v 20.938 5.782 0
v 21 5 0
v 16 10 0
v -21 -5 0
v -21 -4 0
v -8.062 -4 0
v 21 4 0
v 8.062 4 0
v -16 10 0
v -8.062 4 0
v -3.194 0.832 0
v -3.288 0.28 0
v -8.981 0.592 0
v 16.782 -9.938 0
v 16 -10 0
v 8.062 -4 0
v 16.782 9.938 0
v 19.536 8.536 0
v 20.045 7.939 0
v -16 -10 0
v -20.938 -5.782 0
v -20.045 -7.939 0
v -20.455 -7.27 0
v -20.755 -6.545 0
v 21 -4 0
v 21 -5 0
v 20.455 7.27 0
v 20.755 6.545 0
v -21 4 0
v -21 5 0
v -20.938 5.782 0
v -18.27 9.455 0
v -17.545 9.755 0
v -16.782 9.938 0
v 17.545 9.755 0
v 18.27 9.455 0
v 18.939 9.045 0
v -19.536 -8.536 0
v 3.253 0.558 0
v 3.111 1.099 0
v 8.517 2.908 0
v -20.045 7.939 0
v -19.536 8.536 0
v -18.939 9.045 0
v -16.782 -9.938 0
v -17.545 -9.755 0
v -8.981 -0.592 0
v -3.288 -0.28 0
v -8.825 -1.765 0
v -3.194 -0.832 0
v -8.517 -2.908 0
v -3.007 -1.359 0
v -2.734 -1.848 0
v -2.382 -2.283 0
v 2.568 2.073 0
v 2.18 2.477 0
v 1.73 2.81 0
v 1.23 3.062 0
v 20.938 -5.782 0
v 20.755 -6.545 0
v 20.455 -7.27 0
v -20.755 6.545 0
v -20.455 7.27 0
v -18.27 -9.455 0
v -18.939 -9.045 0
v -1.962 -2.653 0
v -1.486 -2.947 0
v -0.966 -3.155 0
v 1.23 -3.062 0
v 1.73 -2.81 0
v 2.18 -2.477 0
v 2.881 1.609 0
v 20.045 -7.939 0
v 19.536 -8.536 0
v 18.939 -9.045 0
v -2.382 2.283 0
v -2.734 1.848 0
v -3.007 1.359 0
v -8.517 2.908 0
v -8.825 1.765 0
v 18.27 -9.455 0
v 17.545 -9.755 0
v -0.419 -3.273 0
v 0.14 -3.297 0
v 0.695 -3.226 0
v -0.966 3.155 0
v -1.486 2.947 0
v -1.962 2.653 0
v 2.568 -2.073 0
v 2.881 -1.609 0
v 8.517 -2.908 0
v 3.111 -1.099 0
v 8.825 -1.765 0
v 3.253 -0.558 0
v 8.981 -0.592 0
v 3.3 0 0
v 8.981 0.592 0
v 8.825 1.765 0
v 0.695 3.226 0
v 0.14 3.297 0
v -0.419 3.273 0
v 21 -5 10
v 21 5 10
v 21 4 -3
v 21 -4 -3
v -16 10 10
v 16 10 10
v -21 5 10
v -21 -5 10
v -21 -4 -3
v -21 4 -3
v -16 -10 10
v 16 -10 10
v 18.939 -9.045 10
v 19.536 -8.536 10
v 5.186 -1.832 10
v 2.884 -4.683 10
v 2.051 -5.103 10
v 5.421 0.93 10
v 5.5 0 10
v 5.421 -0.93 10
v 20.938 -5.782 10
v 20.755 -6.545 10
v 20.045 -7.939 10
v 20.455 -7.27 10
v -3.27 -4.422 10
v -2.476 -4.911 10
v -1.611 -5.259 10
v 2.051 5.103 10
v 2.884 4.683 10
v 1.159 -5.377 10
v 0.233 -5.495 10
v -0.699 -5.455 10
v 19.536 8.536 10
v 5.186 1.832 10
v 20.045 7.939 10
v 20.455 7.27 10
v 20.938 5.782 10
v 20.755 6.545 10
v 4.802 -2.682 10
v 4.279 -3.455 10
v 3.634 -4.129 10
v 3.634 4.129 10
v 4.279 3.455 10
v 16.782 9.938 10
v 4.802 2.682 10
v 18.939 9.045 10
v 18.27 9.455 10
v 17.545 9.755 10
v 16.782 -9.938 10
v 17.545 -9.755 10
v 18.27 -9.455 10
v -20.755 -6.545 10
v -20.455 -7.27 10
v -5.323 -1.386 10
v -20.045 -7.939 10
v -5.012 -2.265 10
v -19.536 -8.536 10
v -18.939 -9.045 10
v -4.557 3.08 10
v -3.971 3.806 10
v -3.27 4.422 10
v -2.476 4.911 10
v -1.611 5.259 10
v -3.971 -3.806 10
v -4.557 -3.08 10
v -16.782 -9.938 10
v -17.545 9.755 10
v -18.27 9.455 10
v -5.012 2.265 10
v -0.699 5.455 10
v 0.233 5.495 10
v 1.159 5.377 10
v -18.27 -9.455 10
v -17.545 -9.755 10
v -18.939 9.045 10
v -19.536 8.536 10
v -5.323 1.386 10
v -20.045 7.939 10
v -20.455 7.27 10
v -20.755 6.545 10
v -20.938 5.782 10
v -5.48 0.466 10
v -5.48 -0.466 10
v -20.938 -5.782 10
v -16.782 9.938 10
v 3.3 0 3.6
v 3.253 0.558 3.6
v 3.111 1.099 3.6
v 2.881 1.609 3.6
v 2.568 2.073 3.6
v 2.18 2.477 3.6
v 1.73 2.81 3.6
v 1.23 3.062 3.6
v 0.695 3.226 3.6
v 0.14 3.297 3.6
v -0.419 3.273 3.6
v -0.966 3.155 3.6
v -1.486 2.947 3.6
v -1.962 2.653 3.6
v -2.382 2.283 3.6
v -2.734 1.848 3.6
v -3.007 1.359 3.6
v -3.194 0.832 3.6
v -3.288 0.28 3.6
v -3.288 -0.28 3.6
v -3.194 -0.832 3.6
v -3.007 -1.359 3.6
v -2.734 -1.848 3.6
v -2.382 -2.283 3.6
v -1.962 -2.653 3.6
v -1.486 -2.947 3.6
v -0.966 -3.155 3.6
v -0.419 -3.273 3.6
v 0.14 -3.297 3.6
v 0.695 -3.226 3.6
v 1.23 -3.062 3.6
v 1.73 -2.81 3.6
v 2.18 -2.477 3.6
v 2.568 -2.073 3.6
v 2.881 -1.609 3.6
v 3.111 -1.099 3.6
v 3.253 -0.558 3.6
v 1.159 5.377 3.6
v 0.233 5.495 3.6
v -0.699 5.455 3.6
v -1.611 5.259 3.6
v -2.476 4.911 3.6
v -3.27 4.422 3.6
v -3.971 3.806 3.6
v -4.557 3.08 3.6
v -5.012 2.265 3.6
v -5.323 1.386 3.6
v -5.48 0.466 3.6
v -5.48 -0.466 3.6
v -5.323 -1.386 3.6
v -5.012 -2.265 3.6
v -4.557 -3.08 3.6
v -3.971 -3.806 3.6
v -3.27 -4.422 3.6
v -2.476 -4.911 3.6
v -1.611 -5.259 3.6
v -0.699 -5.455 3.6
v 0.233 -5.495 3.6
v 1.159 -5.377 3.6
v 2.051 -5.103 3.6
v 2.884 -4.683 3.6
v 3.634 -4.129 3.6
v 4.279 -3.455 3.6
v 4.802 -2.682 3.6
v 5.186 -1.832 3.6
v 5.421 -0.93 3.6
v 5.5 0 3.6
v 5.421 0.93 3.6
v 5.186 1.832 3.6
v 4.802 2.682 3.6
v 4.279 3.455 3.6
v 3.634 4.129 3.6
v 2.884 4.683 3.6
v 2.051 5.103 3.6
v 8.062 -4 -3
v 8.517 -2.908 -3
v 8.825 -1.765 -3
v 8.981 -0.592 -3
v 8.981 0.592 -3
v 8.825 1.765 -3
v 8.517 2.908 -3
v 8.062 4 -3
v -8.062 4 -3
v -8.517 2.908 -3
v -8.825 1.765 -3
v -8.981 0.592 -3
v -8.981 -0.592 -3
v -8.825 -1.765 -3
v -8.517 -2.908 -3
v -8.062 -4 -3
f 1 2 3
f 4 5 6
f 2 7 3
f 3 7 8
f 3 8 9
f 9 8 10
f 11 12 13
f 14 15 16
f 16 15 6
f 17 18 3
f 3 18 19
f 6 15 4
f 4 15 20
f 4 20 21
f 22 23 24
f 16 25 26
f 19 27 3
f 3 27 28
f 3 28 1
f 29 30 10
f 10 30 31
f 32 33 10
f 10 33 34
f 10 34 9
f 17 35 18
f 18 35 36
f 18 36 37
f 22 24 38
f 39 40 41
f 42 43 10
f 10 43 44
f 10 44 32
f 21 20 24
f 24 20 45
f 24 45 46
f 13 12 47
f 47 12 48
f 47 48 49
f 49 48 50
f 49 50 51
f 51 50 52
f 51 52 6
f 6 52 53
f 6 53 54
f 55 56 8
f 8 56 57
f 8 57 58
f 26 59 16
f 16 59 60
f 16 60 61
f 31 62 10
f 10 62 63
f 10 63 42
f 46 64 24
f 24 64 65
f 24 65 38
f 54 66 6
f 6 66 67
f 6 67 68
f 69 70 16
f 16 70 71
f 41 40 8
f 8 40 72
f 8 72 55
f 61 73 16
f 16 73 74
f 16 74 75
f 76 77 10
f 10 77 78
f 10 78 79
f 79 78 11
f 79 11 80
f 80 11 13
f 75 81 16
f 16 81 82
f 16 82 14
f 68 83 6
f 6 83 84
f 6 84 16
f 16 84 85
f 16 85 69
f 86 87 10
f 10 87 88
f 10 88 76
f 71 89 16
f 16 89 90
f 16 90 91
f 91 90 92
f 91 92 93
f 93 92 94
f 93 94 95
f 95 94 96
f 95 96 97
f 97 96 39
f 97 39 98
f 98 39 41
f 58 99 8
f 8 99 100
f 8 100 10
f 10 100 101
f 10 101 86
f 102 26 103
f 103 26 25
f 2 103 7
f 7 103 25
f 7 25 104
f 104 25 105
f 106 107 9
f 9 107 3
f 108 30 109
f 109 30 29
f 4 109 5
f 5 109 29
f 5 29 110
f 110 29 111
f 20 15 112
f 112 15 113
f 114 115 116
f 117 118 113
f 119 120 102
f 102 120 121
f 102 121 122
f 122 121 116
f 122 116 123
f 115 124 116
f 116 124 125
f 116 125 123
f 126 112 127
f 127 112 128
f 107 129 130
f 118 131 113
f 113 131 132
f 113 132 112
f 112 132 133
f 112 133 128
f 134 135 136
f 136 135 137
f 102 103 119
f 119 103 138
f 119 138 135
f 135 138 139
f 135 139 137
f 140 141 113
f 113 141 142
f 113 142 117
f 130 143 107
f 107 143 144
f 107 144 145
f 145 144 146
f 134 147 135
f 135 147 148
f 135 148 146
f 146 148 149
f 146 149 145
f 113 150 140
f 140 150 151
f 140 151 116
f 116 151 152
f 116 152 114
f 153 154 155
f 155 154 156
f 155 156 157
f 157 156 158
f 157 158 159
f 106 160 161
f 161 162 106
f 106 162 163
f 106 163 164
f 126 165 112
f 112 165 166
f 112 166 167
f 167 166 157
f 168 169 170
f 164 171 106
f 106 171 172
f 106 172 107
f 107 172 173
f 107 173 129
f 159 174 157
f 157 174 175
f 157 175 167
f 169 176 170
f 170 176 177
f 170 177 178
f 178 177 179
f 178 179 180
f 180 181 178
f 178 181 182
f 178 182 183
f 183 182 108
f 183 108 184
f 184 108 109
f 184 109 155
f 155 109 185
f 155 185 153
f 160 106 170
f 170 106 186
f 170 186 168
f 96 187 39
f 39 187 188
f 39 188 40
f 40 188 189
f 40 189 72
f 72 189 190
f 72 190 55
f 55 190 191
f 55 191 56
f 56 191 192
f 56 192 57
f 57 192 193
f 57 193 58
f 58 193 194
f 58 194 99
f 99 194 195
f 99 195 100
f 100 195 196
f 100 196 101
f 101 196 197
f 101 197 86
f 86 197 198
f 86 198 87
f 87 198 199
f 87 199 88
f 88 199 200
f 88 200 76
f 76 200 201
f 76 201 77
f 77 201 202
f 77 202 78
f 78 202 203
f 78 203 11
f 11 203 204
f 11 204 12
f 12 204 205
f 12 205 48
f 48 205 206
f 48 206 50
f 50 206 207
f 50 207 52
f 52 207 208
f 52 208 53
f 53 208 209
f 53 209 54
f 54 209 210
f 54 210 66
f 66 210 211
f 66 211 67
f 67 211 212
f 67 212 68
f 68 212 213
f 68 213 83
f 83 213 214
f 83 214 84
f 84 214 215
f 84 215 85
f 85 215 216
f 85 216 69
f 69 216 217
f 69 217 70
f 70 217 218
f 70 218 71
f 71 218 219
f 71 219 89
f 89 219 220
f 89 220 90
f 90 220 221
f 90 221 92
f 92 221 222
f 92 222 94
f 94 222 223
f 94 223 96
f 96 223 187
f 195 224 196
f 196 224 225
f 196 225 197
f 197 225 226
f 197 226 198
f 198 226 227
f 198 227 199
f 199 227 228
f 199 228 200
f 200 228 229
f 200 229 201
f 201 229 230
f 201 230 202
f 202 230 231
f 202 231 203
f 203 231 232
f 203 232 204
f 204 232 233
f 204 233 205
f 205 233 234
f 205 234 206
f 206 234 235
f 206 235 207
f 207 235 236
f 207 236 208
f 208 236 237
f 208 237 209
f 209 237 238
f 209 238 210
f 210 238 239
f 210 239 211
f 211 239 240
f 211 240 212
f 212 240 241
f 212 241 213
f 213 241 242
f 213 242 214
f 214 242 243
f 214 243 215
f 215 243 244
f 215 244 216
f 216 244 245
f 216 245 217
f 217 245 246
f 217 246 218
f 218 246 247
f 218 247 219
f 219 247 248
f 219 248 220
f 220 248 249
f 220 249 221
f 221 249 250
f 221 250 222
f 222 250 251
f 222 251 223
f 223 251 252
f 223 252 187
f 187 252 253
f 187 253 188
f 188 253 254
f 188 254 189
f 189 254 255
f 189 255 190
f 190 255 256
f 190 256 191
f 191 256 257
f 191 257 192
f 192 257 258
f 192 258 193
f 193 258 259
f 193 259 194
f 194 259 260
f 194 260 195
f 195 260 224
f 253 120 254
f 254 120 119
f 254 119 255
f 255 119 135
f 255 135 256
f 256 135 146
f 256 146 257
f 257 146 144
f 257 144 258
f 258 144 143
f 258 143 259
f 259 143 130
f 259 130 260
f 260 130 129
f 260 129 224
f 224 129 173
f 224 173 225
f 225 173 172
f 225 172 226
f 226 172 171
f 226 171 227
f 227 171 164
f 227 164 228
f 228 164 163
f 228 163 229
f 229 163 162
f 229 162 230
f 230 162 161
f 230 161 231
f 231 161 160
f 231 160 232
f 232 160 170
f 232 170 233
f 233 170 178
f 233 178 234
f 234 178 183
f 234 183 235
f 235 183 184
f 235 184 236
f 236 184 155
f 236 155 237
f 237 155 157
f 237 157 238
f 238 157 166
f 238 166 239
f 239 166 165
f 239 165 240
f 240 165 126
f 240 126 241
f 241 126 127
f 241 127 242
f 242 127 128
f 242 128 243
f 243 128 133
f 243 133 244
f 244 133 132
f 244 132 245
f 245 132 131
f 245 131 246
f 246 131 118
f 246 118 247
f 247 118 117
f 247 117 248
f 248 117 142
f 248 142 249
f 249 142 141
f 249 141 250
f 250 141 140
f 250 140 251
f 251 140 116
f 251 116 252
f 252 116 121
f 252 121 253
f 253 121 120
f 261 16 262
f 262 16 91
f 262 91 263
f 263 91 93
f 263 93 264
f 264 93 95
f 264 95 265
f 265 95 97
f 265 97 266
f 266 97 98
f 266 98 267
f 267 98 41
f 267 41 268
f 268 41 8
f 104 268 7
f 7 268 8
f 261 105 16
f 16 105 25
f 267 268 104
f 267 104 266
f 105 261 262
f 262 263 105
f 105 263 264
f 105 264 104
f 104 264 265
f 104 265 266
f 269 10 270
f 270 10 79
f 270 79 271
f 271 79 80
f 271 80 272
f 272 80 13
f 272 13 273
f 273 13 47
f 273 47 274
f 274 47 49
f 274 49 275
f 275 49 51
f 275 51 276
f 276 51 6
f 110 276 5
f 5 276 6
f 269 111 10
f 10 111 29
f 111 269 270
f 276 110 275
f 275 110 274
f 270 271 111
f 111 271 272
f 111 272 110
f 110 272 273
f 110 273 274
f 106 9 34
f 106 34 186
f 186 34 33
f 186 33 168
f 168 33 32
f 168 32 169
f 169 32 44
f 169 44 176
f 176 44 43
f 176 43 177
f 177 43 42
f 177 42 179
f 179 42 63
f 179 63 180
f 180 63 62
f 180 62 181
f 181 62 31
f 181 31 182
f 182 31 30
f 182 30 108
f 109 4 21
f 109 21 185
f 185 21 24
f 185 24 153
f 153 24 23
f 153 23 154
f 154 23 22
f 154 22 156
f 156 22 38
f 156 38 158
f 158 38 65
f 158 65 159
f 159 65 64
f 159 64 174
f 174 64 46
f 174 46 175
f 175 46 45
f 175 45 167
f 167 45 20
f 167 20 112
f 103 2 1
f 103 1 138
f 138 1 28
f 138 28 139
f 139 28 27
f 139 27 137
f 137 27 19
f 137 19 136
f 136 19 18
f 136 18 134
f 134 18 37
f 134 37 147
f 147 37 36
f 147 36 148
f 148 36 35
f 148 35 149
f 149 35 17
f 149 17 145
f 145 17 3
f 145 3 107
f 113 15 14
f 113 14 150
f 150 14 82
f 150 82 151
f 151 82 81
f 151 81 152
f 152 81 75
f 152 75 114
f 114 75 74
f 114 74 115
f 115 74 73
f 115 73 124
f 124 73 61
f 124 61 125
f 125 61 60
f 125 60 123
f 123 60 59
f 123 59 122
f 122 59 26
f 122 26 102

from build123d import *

# Parameters (mm, degrees)
BASE_SKETCH_W           = 42
BASE_SKETCH_H           = 20
BASE_DEPTH              = 10
MOUNT_SCREW_D           = 6.6
MOUNT_SCREW_CBORE_D     = 11
MOUNT_SCREW_CBORE_DEPTH = 6.4
PROFILE_CLIP_DEPTH      = 3
ZAOBLIT1_R              = 5


with BuildPart() as part:
    # Base sketch → Base (new body)
    with BuildSketch(Plane.XY):
        Rectangle(BASE_SKETCH_W, BASE_SKETCH_H)
    extrude(amount=BASE_DEPTH)

    # Mount screw (through all)
    with Locations(Plane.XY.offset(10)):
        with Locations((0, 0)):
            CounterBoreHole(MOUNT_SCREW_D / 2, MOUNT_SCREW_CBORE_D / 2, MOUNT_SCREW_CBORE_DEPTH)

    # Profile clip sketch → Profile clip (add)
    with BuildSketch(Plane(origin=(0, 0, 0), x_dir=(-1, 0, 0), z_dir=(0, 0, -1))):
        with BuildLine():
            Line((-8.062257748, 4), (-21, 4))
            Line((-21, 4), (-21, -4))
            Line((-21, -4), (-8.062257748, -4))
            ThreePointArc((-8.062257748, -4), (-9, 0), (-8.062257748, 4))
        make_face()
        with BuildLine():
            Line((21, 4), (8.062257748, 4))
            ThreePointArc((8.062257748, 4), (8.762428879, 2.054224947), (9, 0))
            ThreePointArc((9, 0), (8.762428879, -2.054224947), (8.062257748, -4))
            Line((8.062257748, -4), (21, -4))
            Line((21, -4), (21, 4))
        make_face()
    extrude(amount=PROFILE_CLIP_DEPTH)

    # Zaoblit1
    zaoblit1_edges = [part.edges().sort_by_distance(p)[0] for p in [
        (21, -10, 5),
        (-21, -10, 5),
        (-21, 10, 5),
        (21, 10, 5),
    ]]
    fillet(zaoblit1_edges, radius=ZAOBLIT1_R)


solid = part.part
